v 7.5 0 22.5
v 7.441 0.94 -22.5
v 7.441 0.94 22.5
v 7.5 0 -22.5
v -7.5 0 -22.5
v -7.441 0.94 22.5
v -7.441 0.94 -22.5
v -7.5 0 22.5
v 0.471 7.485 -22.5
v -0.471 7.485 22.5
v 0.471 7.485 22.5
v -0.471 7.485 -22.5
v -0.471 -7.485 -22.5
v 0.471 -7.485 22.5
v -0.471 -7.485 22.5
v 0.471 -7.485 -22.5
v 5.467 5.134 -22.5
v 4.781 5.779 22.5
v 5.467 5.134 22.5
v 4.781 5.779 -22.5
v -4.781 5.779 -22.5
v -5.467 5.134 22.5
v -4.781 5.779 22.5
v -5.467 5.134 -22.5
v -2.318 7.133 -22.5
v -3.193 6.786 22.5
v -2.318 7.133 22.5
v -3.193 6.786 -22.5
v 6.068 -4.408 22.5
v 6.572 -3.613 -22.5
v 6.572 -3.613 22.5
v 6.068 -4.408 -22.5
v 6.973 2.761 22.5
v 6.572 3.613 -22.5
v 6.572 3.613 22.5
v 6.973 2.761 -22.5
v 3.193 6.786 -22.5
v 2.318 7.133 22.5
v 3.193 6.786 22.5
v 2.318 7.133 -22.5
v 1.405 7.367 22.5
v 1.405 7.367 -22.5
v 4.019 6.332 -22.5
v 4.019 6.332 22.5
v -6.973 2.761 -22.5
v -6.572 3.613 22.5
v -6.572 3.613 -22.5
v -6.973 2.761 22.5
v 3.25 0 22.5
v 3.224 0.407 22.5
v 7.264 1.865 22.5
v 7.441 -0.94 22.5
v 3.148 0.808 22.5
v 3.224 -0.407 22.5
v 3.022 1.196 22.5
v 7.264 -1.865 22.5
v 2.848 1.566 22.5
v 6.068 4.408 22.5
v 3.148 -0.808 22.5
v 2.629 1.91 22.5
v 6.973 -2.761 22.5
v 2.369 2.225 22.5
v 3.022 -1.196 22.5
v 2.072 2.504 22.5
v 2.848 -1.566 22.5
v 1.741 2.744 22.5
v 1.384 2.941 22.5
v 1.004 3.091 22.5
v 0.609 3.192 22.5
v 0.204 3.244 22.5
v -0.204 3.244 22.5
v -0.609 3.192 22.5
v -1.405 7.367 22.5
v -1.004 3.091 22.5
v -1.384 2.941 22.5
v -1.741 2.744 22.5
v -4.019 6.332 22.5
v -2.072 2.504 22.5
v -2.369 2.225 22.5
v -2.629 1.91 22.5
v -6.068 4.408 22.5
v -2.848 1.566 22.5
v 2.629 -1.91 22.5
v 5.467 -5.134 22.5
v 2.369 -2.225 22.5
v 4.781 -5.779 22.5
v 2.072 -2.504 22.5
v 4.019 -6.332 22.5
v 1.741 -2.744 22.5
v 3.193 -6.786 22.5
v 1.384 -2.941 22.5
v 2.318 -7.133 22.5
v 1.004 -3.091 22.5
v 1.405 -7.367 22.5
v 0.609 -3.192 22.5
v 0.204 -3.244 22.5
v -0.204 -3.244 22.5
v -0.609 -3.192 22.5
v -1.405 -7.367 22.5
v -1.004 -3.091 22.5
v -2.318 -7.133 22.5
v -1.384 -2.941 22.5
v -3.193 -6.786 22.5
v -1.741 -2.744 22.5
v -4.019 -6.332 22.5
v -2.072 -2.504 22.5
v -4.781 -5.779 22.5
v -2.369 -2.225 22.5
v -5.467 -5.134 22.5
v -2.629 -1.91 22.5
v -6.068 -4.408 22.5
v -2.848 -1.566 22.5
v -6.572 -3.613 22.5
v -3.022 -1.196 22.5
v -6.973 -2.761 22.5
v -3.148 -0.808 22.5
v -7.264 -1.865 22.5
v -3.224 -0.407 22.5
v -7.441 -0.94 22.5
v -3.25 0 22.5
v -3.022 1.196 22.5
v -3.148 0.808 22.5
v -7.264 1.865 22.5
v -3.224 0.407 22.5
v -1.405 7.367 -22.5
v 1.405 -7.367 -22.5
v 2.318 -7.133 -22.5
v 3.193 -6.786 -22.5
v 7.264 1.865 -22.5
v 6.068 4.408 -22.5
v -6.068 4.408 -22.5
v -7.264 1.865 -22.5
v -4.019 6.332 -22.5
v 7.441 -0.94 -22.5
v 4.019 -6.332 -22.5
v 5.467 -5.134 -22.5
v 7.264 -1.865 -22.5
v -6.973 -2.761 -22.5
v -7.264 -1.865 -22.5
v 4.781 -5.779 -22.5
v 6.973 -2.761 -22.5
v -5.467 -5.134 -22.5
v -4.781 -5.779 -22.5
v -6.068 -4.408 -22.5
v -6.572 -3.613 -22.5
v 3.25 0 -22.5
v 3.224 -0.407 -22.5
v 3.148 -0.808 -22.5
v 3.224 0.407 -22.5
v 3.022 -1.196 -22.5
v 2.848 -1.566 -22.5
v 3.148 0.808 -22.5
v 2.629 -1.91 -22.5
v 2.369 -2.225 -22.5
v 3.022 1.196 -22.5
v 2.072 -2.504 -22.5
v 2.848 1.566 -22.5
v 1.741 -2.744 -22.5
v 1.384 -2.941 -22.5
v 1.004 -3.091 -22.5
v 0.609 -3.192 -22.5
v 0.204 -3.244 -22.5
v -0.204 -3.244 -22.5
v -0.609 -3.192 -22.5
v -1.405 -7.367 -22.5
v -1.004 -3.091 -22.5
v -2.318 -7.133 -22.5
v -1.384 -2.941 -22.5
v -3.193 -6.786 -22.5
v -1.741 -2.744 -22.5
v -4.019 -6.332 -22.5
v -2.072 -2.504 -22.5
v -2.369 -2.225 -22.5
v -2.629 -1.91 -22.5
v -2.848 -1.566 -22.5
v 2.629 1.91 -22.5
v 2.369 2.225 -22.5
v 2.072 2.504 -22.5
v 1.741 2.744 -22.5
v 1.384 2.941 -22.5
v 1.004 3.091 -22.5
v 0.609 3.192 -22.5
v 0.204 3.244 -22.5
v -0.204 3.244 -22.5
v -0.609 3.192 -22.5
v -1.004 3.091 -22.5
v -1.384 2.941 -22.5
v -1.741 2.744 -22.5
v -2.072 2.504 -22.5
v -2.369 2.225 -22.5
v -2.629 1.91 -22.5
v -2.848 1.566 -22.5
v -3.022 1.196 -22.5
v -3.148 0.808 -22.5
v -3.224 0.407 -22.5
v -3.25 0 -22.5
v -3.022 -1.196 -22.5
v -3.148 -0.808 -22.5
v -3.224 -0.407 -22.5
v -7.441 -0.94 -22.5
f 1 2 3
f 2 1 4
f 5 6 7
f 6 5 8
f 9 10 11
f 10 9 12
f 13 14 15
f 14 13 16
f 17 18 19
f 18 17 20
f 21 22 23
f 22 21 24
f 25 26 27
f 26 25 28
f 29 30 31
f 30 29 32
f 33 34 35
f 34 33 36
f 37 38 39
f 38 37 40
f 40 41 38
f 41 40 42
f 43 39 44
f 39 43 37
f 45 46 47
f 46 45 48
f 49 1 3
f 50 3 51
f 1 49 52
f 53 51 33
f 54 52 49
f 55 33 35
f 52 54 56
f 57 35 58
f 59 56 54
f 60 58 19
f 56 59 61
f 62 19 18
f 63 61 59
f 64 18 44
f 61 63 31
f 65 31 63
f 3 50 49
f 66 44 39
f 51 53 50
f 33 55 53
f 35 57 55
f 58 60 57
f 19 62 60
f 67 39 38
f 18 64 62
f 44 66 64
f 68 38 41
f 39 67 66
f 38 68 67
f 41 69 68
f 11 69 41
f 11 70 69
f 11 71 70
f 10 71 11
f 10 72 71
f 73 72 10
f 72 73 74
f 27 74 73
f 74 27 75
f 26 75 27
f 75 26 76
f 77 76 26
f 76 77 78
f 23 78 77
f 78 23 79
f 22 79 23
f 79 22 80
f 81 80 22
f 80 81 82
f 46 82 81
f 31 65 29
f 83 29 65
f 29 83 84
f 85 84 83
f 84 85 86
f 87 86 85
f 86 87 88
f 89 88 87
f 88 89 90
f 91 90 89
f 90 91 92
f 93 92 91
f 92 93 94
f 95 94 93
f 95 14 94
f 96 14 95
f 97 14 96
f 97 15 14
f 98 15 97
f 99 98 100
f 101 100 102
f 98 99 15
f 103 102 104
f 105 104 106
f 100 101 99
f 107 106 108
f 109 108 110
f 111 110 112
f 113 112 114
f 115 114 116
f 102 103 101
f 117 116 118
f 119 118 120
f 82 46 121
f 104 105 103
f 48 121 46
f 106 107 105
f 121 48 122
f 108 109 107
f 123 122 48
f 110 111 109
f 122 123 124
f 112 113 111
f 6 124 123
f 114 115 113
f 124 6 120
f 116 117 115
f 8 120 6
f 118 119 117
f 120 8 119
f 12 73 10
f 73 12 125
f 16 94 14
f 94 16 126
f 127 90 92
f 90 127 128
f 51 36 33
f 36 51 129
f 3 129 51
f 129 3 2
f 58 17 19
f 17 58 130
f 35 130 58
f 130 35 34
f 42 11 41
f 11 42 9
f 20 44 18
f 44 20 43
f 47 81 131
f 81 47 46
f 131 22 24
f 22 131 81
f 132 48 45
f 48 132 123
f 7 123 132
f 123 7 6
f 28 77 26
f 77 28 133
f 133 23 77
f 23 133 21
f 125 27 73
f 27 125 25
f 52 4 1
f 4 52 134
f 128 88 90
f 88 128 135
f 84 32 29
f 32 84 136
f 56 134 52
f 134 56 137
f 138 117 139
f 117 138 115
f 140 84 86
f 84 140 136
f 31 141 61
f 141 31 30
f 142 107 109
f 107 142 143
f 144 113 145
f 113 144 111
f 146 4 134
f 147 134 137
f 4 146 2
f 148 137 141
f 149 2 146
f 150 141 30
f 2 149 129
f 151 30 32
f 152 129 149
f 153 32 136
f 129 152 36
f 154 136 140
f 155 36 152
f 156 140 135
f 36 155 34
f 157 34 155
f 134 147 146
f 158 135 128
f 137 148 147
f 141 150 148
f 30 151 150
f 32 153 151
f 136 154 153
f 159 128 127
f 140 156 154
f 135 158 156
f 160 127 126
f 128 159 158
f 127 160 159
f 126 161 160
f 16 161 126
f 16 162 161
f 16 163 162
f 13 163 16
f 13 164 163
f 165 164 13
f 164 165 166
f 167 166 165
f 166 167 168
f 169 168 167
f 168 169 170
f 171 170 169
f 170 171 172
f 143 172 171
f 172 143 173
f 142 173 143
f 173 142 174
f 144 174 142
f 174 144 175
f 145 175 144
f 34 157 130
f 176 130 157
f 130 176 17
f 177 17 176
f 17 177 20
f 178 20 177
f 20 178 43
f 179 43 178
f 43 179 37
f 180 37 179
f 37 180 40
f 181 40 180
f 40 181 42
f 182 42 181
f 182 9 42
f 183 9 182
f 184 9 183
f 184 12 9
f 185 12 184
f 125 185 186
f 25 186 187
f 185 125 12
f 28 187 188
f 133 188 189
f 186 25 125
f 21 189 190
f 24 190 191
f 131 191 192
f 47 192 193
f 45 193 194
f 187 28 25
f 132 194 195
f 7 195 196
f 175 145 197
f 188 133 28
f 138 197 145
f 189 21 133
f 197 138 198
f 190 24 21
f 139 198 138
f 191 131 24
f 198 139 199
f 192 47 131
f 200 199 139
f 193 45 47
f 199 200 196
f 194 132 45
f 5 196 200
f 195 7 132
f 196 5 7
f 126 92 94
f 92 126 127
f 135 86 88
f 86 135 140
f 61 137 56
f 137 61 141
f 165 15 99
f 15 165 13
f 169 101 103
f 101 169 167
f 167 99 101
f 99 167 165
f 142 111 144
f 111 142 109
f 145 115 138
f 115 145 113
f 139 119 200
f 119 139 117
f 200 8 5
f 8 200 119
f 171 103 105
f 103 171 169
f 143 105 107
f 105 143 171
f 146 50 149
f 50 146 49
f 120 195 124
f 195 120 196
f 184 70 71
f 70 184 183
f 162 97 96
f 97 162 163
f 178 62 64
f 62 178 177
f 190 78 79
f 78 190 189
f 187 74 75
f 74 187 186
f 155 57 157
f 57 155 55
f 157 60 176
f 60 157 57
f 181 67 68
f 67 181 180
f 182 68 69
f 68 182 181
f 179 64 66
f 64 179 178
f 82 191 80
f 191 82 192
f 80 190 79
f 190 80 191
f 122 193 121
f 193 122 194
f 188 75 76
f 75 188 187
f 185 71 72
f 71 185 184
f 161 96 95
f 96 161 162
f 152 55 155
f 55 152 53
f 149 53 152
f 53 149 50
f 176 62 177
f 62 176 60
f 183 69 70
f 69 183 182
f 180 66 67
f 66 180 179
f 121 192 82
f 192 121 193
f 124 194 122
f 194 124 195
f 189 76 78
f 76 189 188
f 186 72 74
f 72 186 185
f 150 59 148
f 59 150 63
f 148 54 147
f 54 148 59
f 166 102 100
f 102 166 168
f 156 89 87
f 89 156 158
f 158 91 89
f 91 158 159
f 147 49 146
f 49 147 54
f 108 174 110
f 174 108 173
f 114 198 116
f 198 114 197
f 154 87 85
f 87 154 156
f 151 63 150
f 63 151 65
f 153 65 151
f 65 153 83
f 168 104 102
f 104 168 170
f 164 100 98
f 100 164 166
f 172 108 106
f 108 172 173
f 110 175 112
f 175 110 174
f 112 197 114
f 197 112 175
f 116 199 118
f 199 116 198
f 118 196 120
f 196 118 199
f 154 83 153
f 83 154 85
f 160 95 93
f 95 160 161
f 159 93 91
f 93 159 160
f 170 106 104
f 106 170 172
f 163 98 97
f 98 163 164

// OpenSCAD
$fn = 50;


difference() {
	union() {
		translate(v = [0, 0, -22.5000000000]) {
			cylinder(h = 45, r = 7.5000000000);
		}
	}
	union() {
		translate(v = [0, 0, -100.0000000000]) {
			cylinder(h = 200, r = 3.2500000000);
		}
	}
}
